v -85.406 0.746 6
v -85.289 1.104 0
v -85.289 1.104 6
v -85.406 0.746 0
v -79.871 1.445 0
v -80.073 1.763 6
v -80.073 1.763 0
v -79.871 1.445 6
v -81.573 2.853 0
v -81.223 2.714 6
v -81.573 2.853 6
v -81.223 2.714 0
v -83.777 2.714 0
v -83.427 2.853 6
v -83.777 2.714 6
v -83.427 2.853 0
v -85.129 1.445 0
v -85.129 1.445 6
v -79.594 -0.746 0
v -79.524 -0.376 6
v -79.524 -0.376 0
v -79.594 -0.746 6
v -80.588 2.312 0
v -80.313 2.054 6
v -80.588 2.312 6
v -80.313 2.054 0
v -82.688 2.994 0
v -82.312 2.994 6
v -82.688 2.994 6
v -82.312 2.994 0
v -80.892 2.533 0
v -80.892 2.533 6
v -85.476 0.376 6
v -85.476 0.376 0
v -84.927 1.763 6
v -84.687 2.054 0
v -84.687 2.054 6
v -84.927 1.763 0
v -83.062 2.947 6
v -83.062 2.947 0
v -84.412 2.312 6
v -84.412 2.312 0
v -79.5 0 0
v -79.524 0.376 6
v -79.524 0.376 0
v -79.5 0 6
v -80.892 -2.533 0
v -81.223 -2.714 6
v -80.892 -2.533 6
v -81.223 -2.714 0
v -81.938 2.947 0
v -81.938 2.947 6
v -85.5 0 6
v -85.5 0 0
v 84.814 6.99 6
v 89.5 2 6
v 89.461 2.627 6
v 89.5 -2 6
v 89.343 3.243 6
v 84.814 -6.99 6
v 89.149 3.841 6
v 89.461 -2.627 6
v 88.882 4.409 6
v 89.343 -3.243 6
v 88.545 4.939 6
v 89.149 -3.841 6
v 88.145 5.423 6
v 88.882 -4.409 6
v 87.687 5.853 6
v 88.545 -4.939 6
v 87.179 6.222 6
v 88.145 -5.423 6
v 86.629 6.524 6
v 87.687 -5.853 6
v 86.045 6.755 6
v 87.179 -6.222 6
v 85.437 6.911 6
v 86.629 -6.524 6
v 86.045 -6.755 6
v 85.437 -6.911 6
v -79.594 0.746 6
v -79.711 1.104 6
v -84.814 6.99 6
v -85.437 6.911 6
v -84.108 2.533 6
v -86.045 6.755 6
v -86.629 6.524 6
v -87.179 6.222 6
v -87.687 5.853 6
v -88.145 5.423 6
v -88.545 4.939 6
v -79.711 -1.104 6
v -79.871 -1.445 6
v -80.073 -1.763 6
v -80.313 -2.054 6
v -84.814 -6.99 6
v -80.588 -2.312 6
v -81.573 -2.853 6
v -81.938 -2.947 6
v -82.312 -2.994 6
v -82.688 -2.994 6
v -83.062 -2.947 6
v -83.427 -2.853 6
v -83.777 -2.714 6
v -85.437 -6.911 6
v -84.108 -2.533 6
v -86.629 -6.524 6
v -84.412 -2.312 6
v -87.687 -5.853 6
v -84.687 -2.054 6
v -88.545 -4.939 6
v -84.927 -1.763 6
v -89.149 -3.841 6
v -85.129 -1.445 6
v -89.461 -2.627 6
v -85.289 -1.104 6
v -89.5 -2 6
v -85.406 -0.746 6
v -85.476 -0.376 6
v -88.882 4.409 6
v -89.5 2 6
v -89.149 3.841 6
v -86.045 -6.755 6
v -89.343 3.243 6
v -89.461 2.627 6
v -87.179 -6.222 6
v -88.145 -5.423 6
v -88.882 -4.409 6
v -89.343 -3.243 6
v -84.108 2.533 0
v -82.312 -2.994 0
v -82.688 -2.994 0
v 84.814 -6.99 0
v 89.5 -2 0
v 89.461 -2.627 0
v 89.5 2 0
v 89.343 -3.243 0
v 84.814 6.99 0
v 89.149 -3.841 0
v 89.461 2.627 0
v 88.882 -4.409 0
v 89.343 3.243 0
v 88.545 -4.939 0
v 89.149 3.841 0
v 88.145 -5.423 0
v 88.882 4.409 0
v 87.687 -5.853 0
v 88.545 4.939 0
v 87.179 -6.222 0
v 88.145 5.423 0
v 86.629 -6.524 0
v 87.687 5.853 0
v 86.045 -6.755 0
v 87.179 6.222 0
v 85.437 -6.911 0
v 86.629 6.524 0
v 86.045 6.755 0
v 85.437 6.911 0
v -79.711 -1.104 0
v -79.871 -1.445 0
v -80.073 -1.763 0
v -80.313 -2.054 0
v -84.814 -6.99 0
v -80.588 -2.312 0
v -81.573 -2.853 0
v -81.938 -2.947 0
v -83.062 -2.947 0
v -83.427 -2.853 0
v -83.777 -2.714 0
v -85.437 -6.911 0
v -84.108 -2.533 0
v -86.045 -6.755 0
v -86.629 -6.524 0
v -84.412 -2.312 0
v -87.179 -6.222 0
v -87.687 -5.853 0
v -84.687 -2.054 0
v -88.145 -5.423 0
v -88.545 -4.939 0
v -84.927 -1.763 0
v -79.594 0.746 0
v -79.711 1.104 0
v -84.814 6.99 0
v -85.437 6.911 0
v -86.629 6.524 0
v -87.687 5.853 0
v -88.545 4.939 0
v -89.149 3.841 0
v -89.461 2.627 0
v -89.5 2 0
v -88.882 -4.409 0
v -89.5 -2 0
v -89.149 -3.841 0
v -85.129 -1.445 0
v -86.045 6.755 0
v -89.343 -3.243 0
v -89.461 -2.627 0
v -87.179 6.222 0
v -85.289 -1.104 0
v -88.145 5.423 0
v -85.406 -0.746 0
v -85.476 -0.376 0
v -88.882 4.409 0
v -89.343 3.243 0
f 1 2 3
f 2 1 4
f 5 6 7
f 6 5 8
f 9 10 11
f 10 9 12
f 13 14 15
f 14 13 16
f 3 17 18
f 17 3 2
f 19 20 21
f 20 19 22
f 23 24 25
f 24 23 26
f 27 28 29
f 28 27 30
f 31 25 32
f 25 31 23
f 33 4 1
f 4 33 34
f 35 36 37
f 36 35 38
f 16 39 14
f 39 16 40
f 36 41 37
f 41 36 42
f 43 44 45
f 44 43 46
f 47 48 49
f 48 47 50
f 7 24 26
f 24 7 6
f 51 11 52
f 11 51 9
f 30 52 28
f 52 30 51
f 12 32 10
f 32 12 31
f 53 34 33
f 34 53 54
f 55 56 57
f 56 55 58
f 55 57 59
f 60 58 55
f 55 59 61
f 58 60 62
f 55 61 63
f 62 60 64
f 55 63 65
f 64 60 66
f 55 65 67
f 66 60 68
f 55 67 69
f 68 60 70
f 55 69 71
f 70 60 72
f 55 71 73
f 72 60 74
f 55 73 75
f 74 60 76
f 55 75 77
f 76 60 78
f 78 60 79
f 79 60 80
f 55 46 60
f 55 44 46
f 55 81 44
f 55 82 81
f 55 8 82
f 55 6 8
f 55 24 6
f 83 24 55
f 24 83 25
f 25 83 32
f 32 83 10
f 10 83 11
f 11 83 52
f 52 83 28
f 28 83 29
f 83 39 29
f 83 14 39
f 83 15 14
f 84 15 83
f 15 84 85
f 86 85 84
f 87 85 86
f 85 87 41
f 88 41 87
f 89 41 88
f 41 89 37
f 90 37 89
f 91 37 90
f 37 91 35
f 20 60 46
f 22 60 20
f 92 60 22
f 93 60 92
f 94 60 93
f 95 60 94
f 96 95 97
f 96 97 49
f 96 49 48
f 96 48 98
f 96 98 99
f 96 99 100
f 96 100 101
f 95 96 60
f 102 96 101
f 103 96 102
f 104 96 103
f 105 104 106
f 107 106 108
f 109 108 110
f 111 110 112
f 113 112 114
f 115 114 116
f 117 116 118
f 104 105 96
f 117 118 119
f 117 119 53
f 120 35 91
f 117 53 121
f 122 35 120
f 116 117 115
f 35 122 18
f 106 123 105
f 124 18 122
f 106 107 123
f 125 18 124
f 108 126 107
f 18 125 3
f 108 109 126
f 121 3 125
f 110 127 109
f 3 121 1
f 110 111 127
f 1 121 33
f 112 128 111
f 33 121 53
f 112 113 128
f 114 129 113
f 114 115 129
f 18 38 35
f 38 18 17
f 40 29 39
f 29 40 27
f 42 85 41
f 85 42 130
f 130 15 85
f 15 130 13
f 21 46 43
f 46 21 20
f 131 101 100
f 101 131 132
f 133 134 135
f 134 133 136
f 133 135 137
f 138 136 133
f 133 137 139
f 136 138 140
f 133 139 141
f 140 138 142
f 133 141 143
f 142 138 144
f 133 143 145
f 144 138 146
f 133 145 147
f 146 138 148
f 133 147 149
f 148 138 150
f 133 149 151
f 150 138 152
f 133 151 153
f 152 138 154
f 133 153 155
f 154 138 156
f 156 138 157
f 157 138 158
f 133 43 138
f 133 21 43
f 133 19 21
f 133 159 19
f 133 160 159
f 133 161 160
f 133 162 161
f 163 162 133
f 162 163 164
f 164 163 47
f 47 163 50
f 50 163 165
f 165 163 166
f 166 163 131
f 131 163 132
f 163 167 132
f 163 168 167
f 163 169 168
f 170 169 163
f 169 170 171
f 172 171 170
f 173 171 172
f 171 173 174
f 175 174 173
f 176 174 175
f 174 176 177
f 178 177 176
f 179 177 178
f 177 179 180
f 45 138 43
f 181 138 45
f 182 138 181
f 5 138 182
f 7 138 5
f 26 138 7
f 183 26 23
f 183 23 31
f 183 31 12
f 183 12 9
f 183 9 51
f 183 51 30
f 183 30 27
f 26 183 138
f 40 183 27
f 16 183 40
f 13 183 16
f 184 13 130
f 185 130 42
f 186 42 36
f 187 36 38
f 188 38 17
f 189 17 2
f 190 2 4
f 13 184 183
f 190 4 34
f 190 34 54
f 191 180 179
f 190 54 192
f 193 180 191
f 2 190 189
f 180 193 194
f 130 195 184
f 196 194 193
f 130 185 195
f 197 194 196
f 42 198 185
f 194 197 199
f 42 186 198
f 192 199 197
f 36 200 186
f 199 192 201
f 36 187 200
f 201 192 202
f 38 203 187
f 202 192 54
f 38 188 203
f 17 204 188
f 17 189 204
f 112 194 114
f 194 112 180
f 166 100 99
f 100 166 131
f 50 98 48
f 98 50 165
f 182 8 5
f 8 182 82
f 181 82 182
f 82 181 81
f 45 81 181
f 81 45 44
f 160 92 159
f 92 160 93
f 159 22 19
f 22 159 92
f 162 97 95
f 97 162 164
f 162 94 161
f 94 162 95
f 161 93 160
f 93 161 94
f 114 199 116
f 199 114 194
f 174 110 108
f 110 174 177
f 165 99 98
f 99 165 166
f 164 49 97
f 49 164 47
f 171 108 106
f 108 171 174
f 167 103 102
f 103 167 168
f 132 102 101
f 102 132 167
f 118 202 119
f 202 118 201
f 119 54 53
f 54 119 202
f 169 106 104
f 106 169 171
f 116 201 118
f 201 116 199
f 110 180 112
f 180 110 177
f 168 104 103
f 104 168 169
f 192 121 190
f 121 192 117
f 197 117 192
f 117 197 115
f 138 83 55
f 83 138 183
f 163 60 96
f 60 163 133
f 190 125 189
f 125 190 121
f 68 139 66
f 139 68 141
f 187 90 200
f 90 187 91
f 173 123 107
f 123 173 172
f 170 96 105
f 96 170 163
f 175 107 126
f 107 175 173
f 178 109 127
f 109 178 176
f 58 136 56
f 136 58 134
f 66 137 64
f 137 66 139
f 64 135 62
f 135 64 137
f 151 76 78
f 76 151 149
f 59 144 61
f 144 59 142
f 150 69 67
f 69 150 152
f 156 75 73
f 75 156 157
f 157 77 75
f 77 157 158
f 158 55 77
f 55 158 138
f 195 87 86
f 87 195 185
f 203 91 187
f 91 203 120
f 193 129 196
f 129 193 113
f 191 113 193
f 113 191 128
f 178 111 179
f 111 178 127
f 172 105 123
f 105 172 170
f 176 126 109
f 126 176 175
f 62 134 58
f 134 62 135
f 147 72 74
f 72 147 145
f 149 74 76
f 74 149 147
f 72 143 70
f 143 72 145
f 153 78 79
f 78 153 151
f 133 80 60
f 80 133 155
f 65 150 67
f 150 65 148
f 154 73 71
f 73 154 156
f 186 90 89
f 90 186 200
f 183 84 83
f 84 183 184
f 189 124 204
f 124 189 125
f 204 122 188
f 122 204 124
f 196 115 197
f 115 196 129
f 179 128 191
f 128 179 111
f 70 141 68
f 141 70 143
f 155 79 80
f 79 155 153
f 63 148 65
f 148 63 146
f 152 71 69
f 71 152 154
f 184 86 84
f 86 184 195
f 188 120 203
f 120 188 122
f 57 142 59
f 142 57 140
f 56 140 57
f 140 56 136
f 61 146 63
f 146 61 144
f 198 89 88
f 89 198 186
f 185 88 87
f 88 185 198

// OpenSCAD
$fn = 50;


difference() {
	union() {
		hull() {
			translate(v = [-84.5000000000, 2.0000000000, 0]) {
				cylinder(h = 6, r = 5);
			}
			translate(v = [84.5000000000, 2.0000000000, 0]) {
				cylinder(h = 6, r = 5);
			}
			translate(v = [-84.5000000000, -2.0000000000, 0]) {
				cylinder(h = 6, r = 5);
			}
			translate(v = [84.5000000000, -2.0000000000, 0]) {
				cylinder(h = 6, r = 5);
			}
		}
	}
	union() {
		translate(v = [-82.5000000000, 0.0000000000, 0]) {
			cylinder(h = 6, r = 3.0000000000);
		}
		translate(v = [-82.5000000000, 0.0000000000, 0]) {
			cylinder(h = 6, r = 1.5000000000);
		}
		translate(v = [-82.5000000000, 0.0000000000, 0]) {
			cylinder(h = 6, r = 1.5000000000);
		}
		translate(v = [-82.5000000000, 0.0000000000, 0]) {
			cylinder(h = 6, r = 1.5000000000);
		}
	}
}
